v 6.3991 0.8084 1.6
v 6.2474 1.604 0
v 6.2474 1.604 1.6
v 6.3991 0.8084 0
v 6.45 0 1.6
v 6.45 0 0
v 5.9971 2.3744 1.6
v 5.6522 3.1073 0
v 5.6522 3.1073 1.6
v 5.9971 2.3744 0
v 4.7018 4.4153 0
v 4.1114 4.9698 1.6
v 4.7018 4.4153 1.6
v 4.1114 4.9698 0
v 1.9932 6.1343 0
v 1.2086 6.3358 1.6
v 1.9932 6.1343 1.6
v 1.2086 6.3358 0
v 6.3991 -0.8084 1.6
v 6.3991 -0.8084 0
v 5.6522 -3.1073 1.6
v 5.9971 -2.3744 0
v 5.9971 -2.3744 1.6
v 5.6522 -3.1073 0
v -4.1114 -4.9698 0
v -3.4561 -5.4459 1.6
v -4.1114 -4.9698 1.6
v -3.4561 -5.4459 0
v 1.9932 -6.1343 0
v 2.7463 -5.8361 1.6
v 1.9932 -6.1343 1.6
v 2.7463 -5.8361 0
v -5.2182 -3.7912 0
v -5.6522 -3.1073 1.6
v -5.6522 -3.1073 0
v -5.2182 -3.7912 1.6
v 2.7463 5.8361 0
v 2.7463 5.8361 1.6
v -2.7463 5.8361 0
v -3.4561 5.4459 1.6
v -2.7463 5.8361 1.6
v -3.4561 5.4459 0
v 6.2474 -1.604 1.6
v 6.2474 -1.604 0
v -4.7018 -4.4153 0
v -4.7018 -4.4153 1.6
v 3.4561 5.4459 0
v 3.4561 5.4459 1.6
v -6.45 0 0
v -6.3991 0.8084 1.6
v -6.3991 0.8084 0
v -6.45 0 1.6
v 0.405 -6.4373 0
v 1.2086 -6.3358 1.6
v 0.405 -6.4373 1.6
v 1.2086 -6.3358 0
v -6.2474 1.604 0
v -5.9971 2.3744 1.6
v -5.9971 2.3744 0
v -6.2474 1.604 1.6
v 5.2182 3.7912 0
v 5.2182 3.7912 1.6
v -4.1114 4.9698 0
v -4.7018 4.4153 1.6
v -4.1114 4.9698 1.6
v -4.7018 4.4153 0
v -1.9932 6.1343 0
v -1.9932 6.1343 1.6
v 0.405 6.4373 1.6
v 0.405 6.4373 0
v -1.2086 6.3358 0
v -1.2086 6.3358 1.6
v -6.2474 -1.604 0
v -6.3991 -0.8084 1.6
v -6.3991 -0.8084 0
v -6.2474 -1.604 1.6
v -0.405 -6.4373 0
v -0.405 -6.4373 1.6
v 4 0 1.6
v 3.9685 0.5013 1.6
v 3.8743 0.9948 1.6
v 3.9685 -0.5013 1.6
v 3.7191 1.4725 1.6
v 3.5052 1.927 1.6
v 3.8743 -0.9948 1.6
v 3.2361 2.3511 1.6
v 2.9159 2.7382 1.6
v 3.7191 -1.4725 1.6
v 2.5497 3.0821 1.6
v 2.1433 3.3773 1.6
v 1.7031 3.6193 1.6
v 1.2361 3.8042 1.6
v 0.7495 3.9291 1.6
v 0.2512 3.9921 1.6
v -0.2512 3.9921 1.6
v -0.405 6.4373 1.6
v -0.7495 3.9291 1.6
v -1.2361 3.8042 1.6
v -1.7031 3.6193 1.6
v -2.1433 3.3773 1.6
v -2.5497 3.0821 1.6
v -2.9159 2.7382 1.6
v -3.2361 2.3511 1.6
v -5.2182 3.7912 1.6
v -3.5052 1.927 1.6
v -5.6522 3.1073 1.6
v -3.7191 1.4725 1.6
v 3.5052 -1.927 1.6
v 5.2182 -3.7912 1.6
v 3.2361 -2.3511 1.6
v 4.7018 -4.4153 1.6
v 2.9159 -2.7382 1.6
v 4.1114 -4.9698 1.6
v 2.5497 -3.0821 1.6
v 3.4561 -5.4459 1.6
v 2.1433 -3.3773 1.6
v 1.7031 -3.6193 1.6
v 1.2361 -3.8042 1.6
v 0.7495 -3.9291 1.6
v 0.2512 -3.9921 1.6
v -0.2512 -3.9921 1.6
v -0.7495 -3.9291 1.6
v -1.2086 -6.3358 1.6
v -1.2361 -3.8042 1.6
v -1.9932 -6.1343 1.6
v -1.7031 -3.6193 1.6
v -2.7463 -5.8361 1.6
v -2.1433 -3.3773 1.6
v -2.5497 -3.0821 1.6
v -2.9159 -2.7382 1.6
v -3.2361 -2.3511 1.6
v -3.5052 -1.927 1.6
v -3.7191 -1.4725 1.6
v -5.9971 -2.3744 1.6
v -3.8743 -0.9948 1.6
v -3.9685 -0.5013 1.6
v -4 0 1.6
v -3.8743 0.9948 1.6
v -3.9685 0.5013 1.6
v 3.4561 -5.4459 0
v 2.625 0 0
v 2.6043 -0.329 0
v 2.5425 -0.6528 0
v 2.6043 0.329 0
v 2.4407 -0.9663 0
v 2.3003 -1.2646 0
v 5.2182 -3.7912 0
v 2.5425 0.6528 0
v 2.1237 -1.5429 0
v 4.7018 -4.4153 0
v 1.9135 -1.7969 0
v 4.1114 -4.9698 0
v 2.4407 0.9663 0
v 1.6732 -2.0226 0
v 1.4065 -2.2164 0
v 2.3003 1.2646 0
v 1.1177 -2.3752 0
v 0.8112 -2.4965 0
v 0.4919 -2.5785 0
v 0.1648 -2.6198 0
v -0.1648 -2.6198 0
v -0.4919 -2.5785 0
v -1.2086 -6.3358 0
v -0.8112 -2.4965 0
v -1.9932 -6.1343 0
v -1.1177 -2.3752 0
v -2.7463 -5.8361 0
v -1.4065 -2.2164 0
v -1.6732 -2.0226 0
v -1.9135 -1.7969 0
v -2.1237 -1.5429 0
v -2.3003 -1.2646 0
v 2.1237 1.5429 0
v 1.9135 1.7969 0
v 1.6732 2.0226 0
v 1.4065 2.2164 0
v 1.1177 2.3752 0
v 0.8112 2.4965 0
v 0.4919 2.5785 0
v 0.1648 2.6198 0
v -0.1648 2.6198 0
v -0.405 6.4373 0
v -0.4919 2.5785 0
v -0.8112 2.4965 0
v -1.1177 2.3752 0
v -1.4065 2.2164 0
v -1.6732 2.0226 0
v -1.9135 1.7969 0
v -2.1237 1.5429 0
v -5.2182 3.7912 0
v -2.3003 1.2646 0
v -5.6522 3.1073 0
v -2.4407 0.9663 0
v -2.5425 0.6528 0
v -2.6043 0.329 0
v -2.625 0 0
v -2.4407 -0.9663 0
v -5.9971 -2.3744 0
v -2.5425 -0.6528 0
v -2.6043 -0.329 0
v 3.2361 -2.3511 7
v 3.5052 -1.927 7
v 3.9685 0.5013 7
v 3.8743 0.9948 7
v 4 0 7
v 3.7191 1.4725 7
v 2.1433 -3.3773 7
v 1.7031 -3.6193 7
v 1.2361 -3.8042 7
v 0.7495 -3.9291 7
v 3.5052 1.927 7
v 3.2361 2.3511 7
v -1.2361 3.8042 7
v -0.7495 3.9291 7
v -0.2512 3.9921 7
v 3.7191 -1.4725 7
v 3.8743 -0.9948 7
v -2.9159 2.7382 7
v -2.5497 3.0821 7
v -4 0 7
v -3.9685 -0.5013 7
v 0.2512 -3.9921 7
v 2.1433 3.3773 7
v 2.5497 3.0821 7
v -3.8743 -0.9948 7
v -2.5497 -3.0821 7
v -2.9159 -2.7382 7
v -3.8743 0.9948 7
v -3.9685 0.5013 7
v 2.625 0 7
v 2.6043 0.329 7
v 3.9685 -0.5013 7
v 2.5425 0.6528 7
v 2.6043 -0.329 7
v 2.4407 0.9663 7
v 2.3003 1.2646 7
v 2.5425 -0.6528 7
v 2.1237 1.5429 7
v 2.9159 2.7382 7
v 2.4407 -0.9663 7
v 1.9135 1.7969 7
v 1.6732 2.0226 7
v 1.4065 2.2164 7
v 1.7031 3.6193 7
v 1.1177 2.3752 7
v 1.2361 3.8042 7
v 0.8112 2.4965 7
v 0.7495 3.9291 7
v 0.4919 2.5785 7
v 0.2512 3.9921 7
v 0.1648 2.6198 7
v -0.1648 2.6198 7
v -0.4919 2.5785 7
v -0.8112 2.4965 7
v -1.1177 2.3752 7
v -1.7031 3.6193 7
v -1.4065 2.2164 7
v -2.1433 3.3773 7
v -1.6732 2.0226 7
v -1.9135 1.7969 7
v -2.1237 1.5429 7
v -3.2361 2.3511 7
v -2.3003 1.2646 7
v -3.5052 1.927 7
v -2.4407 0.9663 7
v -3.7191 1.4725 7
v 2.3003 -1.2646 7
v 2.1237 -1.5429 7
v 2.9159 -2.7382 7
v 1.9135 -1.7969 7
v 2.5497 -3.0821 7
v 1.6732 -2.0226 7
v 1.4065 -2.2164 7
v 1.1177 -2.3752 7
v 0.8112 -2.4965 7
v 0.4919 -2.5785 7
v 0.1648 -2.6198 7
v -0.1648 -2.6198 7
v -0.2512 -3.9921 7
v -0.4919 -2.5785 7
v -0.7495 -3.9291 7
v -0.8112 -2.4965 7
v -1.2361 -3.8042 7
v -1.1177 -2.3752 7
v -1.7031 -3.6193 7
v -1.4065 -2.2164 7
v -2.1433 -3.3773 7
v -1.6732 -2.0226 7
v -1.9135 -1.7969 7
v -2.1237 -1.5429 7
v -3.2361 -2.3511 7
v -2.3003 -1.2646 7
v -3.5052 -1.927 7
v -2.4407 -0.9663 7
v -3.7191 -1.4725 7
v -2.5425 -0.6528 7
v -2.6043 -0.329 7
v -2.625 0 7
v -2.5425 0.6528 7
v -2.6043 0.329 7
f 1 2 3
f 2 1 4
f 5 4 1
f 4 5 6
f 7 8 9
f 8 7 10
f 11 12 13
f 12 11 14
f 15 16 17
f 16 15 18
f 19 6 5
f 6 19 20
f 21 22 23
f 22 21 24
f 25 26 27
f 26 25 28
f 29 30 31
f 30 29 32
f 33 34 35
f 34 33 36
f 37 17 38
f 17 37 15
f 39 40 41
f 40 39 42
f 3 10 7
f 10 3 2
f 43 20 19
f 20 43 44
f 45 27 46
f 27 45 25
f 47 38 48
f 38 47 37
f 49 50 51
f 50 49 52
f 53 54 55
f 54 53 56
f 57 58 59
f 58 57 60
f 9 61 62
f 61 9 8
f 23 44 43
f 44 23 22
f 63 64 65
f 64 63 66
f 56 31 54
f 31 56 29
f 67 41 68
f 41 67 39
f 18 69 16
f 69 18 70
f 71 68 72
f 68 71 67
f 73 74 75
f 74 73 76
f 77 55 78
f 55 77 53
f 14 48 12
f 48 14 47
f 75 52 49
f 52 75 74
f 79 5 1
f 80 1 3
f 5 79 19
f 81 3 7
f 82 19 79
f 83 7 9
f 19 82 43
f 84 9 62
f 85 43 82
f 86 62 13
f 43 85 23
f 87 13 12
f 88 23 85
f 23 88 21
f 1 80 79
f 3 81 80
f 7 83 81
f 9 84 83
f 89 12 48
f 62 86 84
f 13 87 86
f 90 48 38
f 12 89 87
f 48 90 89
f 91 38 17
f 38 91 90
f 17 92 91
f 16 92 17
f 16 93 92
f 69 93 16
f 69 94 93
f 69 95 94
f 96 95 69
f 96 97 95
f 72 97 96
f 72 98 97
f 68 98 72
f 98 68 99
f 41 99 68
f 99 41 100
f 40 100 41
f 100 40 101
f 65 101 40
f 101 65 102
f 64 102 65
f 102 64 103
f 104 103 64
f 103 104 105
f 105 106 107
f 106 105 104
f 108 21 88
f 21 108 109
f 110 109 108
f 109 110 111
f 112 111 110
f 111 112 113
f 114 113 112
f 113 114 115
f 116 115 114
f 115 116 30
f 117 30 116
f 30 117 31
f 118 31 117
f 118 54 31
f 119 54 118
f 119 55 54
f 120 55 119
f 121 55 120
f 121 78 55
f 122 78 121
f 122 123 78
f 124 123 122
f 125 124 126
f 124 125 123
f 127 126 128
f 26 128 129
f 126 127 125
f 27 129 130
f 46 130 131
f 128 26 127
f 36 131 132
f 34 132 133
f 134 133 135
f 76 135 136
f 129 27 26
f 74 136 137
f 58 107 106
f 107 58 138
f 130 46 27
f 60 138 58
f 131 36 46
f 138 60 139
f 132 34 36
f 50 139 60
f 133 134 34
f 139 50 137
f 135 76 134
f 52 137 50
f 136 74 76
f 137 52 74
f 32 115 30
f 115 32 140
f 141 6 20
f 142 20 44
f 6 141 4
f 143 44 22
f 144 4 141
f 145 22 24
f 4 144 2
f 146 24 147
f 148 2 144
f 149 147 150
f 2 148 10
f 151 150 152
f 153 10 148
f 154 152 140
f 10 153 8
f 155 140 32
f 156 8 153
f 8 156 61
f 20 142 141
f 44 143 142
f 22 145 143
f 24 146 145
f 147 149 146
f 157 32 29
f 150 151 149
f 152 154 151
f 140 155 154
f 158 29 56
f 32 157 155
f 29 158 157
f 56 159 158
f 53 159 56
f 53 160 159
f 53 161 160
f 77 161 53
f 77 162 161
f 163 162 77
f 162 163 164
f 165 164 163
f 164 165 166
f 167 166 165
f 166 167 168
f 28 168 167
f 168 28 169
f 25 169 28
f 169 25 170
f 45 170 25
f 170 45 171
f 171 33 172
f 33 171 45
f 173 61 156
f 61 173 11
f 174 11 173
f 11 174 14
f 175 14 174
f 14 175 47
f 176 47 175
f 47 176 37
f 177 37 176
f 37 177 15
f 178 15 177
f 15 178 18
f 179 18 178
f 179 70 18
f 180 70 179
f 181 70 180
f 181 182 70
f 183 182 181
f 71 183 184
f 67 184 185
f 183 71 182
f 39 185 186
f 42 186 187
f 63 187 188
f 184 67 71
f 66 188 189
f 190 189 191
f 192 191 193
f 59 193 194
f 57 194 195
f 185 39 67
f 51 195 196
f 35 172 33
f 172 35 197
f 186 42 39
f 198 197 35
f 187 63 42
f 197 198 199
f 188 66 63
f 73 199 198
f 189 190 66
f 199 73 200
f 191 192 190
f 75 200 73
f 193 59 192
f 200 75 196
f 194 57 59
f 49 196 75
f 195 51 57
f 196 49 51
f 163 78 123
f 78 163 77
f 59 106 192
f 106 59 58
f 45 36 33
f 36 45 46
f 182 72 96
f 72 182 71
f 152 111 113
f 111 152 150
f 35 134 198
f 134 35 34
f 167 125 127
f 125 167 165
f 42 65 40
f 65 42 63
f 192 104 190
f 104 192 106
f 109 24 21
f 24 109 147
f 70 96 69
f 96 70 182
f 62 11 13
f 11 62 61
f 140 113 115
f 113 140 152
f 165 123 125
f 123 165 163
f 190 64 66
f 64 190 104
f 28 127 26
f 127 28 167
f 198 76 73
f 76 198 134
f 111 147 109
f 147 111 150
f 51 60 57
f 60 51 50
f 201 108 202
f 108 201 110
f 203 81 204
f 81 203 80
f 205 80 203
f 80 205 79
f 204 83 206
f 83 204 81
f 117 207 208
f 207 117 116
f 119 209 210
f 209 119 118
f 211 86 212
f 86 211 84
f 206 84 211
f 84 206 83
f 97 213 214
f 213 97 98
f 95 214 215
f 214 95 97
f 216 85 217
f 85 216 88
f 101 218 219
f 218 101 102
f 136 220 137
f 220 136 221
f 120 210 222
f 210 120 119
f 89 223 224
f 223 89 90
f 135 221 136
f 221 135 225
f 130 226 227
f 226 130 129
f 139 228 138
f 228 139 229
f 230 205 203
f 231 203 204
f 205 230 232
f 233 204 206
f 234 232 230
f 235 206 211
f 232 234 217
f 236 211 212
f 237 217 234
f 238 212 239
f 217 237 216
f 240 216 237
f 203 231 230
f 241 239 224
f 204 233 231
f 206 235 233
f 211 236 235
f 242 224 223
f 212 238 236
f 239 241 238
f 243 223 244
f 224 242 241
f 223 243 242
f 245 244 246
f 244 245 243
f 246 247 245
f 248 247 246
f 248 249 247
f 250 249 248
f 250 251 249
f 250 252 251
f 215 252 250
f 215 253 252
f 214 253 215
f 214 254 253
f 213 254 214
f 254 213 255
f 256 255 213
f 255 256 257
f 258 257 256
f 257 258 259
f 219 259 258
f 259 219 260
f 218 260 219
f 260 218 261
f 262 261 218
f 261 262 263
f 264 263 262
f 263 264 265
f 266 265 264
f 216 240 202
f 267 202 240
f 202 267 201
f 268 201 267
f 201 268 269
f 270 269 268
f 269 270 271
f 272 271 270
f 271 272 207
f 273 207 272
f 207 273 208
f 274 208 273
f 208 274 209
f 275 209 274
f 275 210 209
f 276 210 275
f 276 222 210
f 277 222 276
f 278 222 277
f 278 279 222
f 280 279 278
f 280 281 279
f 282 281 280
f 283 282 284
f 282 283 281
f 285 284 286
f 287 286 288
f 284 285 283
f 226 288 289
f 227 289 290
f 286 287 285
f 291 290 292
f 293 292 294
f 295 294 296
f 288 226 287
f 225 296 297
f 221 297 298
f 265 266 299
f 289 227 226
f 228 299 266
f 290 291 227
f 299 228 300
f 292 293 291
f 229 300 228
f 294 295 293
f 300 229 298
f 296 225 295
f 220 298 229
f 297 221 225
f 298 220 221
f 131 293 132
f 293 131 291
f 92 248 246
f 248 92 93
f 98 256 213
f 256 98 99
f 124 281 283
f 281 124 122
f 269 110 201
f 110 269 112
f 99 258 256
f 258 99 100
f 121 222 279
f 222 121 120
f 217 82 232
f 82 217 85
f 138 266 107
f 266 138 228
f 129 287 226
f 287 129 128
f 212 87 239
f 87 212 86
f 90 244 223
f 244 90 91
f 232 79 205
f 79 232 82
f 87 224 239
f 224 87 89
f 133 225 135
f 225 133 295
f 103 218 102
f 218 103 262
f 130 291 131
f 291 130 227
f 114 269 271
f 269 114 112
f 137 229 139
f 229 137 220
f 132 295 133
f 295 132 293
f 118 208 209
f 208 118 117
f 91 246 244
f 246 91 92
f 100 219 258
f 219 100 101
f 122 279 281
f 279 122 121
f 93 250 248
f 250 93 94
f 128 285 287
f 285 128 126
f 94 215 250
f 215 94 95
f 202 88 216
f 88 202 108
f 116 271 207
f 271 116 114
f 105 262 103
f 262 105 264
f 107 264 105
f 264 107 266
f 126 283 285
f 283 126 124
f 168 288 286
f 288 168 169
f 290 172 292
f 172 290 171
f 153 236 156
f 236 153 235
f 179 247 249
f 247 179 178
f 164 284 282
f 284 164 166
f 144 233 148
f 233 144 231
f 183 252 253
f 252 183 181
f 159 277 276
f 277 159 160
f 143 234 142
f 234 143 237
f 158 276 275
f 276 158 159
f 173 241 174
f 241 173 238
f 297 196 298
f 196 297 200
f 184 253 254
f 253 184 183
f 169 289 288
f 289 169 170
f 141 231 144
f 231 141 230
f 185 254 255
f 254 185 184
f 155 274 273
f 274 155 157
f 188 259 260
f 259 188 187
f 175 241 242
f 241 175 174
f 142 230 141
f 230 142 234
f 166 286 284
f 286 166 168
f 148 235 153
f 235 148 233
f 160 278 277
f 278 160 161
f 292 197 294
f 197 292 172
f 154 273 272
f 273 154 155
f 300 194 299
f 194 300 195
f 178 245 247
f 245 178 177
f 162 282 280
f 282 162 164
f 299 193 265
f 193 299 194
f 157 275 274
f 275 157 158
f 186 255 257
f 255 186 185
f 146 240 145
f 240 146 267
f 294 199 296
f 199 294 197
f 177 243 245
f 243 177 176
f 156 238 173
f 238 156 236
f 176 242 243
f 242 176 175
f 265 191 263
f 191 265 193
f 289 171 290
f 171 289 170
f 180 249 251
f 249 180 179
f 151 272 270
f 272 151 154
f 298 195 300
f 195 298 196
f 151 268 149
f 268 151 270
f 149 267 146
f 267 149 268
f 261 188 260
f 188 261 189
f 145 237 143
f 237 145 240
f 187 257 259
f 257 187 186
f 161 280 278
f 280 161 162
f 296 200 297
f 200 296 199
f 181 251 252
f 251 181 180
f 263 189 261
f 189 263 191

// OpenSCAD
difference() {
  union() {
    cylinder(d=12.9, h=1.6, $fn=50);
    cylinder(d=8, h=7, $fn=50);
  }
  translate([0,0,-0.1]) cylinder(d=5.25, h=9, $fn=50);
}
